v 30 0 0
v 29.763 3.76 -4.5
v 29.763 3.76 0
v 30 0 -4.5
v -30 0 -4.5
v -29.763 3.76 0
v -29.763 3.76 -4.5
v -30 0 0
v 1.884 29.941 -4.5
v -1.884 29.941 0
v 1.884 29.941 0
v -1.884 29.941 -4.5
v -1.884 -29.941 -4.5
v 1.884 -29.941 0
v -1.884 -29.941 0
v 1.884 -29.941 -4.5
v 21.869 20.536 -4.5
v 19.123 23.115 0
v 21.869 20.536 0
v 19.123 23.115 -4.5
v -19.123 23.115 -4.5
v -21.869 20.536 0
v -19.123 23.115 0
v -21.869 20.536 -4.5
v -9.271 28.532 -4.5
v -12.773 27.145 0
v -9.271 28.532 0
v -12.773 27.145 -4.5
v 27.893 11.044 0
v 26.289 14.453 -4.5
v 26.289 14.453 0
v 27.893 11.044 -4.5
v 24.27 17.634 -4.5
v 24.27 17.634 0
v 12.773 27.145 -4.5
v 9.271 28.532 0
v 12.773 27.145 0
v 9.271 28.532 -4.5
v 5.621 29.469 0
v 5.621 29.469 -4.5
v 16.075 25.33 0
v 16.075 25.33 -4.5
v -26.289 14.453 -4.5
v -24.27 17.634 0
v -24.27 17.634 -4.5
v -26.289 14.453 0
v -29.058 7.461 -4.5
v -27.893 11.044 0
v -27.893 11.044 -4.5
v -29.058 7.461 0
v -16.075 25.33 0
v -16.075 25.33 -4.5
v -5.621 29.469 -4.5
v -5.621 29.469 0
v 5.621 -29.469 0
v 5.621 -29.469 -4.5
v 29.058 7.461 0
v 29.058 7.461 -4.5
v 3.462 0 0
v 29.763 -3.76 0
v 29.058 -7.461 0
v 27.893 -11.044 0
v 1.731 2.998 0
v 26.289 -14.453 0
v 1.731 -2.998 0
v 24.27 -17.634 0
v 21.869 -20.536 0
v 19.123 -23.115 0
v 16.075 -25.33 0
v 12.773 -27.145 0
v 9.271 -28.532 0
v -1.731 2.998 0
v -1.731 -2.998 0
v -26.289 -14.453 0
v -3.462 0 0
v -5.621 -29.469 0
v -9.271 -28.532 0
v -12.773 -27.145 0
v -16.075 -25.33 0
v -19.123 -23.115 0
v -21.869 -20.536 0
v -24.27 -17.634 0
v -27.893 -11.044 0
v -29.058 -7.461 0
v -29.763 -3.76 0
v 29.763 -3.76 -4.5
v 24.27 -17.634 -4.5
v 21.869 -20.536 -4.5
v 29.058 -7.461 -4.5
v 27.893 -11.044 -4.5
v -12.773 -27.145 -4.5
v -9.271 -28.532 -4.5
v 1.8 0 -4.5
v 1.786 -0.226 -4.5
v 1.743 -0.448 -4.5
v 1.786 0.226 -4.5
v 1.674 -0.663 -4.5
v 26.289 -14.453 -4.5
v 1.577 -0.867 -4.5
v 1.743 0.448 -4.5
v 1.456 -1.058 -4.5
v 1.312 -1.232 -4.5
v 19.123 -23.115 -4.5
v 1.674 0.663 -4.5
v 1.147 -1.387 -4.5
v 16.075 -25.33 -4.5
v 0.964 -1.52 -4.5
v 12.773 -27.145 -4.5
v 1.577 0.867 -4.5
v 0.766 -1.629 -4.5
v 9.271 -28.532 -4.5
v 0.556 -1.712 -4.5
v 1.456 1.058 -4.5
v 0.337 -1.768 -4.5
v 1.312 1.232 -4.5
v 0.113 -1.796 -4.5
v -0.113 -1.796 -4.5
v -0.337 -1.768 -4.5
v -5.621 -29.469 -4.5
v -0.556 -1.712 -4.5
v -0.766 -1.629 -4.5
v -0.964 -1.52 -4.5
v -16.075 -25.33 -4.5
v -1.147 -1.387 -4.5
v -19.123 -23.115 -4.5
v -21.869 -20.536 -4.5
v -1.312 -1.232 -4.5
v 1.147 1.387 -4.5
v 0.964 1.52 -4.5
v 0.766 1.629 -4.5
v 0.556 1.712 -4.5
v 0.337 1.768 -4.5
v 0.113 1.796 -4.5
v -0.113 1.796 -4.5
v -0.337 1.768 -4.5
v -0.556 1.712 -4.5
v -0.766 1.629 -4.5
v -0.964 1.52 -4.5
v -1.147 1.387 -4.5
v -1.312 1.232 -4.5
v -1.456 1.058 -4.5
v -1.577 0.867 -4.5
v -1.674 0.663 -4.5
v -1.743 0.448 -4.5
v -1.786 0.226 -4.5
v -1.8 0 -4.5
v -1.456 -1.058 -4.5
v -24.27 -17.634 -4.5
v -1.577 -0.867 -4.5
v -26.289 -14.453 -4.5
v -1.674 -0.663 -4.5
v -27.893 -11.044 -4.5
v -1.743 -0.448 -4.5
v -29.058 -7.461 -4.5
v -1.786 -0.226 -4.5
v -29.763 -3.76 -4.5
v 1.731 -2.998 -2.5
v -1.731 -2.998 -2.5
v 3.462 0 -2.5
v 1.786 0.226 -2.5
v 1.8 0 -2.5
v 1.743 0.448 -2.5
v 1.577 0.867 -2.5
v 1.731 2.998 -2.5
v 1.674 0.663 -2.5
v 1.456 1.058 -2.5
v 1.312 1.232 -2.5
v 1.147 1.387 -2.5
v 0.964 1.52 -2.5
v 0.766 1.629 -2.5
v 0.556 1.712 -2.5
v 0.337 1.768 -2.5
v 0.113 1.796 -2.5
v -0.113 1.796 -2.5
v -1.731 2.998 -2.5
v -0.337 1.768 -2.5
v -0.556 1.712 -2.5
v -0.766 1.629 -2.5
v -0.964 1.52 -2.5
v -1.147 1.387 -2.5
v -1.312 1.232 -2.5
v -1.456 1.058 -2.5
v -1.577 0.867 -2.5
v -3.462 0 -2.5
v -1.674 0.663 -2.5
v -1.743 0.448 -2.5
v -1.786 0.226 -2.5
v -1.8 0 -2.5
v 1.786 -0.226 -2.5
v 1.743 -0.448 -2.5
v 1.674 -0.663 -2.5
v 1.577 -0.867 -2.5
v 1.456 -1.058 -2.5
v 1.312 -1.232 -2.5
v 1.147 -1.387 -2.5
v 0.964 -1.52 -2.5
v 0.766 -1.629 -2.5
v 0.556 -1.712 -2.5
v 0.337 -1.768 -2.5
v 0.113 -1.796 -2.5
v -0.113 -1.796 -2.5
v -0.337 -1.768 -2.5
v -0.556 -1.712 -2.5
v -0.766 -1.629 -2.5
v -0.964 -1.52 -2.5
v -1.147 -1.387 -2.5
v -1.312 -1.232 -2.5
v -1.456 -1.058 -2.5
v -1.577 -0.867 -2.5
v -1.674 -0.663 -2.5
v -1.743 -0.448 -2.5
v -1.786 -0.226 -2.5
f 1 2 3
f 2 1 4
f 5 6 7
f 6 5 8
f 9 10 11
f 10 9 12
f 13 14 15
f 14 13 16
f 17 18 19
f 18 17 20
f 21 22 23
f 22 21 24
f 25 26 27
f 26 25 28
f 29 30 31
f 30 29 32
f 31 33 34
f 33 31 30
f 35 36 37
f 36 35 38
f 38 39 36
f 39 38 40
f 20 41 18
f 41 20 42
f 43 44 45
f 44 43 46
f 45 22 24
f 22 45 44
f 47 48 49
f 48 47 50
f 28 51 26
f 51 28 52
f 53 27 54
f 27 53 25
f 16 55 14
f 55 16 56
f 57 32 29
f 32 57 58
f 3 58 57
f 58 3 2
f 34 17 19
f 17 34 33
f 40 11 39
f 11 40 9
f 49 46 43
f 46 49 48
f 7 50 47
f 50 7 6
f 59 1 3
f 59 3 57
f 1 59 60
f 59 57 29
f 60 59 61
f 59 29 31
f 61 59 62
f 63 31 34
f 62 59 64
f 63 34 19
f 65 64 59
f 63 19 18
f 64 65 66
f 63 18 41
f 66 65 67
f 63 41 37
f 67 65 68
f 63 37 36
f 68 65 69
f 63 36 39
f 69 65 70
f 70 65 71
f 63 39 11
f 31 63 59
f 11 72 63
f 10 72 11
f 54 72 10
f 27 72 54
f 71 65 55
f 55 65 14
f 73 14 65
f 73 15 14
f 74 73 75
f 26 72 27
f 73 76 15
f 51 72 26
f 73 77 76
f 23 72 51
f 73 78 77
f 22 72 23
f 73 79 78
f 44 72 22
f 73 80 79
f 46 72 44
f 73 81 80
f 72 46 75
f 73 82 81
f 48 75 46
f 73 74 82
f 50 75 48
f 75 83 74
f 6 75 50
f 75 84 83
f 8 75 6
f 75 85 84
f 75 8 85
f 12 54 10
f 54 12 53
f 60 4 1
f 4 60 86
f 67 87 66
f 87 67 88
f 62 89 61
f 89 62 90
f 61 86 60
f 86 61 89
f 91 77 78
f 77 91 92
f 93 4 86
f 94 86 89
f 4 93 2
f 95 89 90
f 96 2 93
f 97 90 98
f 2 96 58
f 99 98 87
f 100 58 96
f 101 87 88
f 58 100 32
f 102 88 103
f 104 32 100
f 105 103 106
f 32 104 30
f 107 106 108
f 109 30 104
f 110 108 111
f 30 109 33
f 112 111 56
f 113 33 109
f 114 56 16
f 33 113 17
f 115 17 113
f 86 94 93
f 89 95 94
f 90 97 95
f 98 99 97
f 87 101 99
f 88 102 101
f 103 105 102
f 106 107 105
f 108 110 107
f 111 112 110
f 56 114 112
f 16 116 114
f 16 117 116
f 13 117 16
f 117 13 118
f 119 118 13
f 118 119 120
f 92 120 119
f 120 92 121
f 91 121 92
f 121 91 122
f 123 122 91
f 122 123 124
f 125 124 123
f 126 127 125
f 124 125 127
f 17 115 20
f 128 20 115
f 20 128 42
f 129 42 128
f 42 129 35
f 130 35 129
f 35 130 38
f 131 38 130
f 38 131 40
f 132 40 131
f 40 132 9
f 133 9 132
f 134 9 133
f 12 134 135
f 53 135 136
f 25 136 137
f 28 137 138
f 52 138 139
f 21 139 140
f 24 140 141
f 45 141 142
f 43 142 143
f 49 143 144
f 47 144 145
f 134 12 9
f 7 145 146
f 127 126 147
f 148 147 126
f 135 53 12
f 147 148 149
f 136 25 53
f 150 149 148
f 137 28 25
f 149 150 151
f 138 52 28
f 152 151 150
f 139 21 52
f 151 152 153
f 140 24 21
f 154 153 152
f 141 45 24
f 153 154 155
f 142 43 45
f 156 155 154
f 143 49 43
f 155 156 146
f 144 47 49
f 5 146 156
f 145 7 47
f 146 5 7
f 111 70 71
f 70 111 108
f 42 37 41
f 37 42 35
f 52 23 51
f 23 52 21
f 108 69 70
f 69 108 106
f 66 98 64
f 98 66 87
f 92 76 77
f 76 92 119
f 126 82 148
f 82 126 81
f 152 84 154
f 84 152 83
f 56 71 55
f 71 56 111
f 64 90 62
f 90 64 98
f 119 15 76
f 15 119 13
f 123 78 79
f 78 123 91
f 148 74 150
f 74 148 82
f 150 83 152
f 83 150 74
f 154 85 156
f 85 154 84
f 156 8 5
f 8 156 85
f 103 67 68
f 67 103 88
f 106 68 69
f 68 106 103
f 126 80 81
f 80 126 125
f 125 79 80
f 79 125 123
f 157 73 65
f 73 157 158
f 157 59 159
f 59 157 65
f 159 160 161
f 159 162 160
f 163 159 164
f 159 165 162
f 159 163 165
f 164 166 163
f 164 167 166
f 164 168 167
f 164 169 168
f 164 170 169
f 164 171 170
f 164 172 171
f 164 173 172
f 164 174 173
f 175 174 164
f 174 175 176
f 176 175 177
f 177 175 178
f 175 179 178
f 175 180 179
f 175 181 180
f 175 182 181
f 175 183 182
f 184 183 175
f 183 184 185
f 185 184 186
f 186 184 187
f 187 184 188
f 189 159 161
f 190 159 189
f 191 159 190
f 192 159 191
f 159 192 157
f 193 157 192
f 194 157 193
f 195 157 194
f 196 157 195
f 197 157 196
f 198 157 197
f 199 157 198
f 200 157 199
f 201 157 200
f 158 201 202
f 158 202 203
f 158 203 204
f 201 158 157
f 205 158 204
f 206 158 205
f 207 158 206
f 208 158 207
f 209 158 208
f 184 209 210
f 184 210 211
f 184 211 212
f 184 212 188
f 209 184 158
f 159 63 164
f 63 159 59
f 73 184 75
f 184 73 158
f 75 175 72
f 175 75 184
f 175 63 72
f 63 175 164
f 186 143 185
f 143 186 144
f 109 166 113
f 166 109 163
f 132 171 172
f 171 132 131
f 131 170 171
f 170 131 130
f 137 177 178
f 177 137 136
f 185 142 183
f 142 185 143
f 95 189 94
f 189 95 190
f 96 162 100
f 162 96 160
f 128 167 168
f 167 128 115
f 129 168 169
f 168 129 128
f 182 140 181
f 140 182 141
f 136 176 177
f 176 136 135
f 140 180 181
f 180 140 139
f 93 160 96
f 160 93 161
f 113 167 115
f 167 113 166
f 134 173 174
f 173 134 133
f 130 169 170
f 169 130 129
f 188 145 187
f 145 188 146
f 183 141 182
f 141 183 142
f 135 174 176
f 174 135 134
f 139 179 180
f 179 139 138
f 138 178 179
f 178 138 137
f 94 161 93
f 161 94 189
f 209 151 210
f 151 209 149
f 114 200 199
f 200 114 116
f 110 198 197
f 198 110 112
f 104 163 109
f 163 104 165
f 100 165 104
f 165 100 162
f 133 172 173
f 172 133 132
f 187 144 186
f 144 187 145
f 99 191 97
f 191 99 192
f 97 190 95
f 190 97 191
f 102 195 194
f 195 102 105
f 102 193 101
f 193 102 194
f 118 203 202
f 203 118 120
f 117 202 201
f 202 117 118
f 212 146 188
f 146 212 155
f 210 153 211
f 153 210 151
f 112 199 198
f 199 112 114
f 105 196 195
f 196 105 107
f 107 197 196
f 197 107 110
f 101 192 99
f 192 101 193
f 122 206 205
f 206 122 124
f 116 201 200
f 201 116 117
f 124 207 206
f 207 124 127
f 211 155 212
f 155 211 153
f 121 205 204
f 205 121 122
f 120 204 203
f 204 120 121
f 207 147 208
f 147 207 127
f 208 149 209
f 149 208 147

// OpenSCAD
$fn = 50;


difference() {
	union() {
		translate(v = [0, 0, -4.5000000000]) {
			cylinder(h = 4.5000000000, r = 30.0000000000);
		}
		translate(v = [0, 0, -3.0000000000]) {
			cylinder(h = 3, r = 2.8750000000);
		}
	}
	union() {
		translate(v = [0, 0, 0]) {
			rotate(a = [0, 0, 0]) {
				difference() {
					union() {
						translate(v = [0, 0, -2.5000000000]) {
							#linear_extrude(height = 2.5000000000) {
								polygon(points = [[3.4620000000, 0.0000000000], [1.7310000000, 2.9981799479], [-1.7310000000, 2.9981799479], [-3.4620000000, 0.0000000000], [-1.7310000000, -2.9981799479], [1.7310000000, -2.9981799479]]);
							}
						}
					}
					union();
				}
			}
		}
		#translate(v = [0, 0, -100.0000000000]) {
			cylinder(h = 200, r = 1.8000000000);
		}
	}
}
